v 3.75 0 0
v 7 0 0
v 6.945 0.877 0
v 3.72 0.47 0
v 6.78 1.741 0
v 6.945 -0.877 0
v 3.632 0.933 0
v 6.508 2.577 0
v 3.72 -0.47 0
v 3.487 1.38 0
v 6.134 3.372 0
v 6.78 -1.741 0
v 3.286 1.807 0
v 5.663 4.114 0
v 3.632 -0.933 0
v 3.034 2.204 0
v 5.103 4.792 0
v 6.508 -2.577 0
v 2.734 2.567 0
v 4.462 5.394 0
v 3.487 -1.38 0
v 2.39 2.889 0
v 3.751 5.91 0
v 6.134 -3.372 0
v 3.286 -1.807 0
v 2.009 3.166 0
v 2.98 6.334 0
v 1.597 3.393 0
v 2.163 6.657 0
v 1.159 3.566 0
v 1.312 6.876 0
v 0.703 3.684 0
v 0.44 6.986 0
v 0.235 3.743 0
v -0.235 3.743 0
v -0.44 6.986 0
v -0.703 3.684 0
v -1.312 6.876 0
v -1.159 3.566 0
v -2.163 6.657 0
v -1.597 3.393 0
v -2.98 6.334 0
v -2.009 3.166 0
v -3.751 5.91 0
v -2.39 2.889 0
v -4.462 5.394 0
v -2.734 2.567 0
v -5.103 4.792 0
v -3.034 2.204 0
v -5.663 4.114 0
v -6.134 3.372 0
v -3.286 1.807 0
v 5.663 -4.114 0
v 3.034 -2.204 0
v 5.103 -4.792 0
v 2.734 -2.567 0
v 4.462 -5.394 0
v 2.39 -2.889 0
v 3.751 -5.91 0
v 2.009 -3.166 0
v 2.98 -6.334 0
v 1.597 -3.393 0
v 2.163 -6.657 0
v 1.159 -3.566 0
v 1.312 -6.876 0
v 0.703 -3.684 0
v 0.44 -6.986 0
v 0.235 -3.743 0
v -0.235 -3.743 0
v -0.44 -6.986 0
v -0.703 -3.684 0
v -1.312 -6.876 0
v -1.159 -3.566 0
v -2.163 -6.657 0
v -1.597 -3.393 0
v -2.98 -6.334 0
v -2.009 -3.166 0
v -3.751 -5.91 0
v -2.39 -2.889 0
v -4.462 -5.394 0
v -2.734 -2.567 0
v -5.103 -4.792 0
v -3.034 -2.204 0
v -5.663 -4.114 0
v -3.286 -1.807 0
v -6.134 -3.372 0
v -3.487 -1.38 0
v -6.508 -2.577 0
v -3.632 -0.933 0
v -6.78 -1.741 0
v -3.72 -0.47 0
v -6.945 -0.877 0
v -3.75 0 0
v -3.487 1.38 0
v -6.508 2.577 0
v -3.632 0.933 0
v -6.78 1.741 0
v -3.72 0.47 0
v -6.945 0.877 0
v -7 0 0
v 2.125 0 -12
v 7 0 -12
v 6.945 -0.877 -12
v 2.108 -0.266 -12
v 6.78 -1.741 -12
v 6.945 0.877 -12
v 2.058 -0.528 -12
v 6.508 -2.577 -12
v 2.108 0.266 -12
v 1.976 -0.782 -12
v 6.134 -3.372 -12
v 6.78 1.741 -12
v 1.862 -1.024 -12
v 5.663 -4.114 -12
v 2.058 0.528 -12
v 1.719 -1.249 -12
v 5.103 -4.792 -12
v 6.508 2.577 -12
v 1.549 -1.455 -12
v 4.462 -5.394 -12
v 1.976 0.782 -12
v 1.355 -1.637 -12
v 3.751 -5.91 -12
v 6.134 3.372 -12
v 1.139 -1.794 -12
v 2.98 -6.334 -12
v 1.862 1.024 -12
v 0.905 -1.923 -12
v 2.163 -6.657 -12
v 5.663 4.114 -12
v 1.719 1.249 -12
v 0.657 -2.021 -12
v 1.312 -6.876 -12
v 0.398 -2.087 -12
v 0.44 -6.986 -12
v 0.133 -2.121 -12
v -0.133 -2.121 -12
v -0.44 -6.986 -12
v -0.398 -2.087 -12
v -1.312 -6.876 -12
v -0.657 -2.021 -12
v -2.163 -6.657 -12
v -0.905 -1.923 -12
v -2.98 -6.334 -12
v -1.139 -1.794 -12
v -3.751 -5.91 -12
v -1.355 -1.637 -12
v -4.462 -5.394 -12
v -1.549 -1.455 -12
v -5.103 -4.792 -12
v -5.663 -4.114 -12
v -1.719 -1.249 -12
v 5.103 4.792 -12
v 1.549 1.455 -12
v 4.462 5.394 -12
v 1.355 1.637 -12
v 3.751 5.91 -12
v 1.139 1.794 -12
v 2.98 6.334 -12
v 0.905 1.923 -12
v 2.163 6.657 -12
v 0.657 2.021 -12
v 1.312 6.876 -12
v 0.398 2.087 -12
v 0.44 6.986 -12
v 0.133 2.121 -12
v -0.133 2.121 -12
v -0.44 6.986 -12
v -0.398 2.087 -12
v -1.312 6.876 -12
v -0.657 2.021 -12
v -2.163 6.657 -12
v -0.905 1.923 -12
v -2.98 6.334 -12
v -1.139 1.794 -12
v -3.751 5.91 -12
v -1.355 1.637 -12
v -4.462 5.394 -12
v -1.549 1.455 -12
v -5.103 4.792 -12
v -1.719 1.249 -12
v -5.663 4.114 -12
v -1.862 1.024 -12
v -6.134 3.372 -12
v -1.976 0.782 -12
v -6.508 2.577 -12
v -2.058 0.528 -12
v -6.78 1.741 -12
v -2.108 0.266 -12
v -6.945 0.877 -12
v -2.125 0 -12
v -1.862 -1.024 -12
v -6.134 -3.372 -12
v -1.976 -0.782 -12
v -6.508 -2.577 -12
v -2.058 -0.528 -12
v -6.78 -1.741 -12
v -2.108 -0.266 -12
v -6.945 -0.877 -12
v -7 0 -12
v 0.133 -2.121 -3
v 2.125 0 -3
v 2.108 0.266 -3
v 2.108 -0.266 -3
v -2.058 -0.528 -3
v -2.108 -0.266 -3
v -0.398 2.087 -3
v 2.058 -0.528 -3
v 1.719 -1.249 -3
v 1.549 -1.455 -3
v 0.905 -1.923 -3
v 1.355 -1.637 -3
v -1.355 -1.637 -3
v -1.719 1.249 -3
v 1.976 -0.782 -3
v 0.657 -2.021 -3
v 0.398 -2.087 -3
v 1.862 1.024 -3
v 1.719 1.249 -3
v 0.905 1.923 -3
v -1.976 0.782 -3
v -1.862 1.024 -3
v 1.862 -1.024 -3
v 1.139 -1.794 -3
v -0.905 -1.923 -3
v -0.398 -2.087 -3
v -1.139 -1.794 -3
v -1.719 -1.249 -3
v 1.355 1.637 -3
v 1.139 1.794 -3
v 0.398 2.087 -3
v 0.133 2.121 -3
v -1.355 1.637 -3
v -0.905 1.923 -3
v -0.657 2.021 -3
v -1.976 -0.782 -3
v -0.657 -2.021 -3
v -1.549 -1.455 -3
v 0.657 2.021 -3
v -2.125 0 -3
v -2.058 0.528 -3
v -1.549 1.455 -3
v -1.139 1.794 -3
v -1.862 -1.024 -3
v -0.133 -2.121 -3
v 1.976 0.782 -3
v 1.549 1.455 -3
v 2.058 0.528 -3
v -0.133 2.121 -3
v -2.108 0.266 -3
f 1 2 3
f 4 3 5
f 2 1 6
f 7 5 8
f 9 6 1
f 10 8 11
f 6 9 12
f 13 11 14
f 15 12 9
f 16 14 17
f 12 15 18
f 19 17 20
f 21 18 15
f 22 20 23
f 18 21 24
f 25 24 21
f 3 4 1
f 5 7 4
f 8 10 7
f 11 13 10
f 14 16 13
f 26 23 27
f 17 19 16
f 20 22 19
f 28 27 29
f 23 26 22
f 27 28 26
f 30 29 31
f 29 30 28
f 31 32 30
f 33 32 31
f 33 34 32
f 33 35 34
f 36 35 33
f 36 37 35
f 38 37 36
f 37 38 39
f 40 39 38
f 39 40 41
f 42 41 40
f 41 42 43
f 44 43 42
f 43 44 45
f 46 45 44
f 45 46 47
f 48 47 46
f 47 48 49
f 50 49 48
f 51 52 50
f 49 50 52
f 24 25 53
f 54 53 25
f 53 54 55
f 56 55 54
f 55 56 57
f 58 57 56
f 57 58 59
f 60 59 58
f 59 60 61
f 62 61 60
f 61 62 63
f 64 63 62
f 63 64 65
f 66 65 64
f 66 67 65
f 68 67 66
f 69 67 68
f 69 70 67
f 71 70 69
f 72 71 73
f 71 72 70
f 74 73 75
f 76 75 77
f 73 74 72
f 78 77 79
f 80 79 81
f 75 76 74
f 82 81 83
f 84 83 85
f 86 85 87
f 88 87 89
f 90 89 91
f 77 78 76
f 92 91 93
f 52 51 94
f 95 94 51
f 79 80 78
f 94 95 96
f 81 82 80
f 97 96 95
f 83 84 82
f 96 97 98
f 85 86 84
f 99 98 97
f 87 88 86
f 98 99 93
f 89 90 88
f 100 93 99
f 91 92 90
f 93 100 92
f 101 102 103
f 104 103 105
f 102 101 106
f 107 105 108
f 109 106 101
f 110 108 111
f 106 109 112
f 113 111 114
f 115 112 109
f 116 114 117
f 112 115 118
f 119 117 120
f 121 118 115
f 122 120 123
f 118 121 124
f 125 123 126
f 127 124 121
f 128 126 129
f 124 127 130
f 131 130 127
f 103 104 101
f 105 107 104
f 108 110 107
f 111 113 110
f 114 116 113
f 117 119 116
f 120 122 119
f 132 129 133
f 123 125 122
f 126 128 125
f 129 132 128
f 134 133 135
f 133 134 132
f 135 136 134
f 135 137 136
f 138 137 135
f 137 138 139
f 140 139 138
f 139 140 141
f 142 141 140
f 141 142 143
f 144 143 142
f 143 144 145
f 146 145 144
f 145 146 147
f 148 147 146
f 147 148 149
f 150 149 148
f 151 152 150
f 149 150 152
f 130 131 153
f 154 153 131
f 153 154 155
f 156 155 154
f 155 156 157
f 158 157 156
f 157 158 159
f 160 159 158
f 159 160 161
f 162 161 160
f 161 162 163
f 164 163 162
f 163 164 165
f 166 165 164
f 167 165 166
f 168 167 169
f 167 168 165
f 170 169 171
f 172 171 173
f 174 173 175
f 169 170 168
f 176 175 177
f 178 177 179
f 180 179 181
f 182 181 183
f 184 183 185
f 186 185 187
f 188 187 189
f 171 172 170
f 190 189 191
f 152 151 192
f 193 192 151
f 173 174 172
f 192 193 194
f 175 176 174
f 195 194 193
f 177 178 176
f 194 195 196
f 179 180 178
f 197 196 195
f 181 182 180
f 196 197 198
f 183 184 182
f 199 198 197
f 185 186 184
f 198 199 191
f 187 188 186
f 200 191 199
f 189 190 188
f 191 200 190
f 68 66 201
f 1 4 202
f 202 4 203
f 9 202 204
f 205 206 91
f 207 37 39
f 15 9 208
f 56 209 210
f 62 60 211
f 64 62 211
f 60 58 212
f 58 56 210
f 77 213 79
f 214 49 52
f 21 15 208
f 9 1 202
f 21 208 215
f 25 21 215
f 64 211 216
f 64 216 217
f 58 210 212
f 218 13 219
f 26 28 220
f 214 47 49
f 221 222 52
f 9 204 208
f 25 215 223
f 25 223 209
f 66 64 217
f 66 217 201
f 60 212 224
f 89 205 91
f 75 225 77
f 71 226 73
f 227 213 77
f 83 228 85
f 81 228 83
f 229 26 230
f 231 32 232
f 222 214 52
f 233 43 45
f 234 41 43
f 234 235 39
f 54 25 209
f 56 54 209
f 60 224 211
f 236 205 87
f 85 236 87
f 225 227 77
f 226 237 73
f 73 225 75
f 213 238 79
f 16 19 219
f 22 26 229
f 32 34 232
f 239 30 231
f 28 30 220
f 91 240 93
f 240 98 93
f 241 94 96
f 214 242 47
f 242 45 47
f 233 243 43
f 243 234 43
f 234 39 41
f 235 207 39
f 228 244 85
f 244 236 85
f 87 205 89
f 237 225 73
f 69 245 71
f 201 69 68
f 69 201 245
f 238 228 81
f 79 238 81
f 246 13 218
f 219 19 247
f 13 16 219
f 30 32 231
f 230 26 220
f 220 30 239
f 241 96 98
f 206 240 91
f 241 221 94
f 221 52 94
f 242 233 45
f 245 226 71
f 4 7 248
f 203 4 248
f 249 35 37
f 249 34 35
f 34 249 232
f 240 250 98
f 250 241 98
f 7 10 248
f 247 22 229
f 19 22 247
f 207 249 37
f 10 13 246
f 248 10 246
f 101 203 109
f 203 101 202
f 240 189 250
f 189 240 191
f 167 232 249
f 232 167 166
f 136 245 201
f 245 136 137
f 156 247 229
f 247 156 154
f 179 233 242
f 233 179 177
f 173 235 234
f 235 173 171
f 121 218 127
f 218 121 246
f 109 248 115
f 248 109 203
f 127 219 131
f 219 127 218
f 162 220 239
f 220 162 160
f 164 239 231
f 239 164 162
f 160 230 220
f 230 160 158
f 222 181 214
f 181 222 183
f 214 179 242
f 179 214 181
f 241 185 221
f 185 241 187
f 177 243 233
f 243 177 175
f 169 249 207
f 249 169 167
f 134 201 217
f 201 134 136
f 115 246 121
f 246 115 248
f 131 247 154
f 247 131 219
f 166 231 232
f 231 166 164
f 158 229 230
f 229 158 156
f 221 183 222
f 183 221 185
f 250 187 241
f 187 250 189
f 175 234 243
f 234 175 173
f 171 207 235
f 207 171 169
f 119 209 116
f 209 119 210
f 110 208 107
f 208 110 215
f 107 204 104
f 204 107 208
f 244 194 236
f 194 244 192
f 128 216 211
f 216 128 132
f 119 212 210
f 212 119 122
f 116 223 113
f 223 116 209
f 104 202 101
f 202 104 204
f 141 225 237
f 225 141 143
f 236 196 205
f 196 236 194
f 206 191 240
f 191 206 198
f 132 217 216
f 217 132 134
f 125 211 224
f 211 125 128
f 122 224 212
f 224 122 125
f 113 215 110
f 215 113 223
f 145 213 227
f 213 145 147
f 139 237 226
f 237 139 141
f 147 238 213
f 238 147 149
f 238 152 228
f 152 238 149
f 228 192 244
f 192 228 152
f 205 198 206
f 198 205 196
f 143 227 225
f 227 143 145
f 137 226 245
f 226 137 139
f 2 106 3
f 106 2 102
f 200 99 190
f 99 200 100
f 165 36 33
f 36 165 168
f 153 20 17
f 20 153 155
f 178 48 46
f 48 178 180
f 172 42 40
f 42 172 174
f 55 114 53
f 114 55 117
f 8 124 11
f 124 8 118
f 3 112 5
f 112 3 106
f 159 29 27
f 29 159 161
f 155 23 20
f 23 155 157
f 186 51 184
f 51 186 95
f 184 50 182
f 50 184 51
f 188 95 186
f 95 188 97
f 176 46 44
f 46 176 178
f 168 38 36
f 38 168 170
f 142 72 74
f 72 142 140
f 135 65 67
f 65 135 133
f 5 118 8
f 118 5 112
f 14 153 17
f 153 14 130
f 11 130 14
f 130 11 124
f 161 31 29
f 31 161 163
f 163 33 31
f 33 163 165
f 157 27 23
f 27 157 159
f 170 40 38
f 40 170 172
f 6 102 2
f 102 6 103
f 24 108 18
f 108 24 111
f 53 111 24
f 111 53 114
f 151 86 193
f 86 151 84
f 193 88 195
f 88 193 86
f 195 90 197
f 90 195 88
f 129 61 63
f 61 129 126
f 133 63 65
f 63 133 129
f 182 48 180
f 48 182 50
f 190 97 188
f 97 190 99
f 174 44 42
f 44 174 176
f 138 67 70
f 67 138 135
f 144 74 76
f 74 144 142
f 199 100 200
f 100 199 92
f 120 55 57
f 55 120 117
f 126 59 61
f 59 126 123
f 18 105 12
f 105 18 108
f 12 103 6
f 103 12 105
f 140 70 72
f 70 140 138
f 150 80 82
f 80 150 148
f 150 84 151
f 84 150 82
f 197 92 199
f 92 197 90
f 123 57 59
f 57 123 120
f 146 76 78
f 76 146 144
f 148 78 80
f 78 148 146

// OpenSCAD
$fn = 50;


difference() {
	union() {
		translate(v = [0, 0, -12.0000000000]) {
			cylinder(h = 12, r = 7.0000000000);
		}
		cylinder(h = 0, r = 10.0000000000);
	}
	union() {
		translate(v = [0, 0, 0]) {
			rotate(a = [0, 0, 0]) {
				difference() {
					union() {
						#translate(v = [0, 0, -12.0000000000]) {
							cylinder(h = 12, r = 2.0000000000);
						}
						#translate(v = [0, 0, -3]) {
							cylinder(h = 3, r = 7.0000000000, r1 = 2.1250000000, r2 = 3.7500000000);
						}
						#translate(v = [0, 0, -12.0000000000]) {
							cylinder(h = 12, r = 2.1250000000);
						}
						#translate(v = [0, 0, -12.0000000000]) {
							cylinder(h = 12, r = 2.0000000000);
						}
					}
					union();
				}
			}
		}
	}
}
